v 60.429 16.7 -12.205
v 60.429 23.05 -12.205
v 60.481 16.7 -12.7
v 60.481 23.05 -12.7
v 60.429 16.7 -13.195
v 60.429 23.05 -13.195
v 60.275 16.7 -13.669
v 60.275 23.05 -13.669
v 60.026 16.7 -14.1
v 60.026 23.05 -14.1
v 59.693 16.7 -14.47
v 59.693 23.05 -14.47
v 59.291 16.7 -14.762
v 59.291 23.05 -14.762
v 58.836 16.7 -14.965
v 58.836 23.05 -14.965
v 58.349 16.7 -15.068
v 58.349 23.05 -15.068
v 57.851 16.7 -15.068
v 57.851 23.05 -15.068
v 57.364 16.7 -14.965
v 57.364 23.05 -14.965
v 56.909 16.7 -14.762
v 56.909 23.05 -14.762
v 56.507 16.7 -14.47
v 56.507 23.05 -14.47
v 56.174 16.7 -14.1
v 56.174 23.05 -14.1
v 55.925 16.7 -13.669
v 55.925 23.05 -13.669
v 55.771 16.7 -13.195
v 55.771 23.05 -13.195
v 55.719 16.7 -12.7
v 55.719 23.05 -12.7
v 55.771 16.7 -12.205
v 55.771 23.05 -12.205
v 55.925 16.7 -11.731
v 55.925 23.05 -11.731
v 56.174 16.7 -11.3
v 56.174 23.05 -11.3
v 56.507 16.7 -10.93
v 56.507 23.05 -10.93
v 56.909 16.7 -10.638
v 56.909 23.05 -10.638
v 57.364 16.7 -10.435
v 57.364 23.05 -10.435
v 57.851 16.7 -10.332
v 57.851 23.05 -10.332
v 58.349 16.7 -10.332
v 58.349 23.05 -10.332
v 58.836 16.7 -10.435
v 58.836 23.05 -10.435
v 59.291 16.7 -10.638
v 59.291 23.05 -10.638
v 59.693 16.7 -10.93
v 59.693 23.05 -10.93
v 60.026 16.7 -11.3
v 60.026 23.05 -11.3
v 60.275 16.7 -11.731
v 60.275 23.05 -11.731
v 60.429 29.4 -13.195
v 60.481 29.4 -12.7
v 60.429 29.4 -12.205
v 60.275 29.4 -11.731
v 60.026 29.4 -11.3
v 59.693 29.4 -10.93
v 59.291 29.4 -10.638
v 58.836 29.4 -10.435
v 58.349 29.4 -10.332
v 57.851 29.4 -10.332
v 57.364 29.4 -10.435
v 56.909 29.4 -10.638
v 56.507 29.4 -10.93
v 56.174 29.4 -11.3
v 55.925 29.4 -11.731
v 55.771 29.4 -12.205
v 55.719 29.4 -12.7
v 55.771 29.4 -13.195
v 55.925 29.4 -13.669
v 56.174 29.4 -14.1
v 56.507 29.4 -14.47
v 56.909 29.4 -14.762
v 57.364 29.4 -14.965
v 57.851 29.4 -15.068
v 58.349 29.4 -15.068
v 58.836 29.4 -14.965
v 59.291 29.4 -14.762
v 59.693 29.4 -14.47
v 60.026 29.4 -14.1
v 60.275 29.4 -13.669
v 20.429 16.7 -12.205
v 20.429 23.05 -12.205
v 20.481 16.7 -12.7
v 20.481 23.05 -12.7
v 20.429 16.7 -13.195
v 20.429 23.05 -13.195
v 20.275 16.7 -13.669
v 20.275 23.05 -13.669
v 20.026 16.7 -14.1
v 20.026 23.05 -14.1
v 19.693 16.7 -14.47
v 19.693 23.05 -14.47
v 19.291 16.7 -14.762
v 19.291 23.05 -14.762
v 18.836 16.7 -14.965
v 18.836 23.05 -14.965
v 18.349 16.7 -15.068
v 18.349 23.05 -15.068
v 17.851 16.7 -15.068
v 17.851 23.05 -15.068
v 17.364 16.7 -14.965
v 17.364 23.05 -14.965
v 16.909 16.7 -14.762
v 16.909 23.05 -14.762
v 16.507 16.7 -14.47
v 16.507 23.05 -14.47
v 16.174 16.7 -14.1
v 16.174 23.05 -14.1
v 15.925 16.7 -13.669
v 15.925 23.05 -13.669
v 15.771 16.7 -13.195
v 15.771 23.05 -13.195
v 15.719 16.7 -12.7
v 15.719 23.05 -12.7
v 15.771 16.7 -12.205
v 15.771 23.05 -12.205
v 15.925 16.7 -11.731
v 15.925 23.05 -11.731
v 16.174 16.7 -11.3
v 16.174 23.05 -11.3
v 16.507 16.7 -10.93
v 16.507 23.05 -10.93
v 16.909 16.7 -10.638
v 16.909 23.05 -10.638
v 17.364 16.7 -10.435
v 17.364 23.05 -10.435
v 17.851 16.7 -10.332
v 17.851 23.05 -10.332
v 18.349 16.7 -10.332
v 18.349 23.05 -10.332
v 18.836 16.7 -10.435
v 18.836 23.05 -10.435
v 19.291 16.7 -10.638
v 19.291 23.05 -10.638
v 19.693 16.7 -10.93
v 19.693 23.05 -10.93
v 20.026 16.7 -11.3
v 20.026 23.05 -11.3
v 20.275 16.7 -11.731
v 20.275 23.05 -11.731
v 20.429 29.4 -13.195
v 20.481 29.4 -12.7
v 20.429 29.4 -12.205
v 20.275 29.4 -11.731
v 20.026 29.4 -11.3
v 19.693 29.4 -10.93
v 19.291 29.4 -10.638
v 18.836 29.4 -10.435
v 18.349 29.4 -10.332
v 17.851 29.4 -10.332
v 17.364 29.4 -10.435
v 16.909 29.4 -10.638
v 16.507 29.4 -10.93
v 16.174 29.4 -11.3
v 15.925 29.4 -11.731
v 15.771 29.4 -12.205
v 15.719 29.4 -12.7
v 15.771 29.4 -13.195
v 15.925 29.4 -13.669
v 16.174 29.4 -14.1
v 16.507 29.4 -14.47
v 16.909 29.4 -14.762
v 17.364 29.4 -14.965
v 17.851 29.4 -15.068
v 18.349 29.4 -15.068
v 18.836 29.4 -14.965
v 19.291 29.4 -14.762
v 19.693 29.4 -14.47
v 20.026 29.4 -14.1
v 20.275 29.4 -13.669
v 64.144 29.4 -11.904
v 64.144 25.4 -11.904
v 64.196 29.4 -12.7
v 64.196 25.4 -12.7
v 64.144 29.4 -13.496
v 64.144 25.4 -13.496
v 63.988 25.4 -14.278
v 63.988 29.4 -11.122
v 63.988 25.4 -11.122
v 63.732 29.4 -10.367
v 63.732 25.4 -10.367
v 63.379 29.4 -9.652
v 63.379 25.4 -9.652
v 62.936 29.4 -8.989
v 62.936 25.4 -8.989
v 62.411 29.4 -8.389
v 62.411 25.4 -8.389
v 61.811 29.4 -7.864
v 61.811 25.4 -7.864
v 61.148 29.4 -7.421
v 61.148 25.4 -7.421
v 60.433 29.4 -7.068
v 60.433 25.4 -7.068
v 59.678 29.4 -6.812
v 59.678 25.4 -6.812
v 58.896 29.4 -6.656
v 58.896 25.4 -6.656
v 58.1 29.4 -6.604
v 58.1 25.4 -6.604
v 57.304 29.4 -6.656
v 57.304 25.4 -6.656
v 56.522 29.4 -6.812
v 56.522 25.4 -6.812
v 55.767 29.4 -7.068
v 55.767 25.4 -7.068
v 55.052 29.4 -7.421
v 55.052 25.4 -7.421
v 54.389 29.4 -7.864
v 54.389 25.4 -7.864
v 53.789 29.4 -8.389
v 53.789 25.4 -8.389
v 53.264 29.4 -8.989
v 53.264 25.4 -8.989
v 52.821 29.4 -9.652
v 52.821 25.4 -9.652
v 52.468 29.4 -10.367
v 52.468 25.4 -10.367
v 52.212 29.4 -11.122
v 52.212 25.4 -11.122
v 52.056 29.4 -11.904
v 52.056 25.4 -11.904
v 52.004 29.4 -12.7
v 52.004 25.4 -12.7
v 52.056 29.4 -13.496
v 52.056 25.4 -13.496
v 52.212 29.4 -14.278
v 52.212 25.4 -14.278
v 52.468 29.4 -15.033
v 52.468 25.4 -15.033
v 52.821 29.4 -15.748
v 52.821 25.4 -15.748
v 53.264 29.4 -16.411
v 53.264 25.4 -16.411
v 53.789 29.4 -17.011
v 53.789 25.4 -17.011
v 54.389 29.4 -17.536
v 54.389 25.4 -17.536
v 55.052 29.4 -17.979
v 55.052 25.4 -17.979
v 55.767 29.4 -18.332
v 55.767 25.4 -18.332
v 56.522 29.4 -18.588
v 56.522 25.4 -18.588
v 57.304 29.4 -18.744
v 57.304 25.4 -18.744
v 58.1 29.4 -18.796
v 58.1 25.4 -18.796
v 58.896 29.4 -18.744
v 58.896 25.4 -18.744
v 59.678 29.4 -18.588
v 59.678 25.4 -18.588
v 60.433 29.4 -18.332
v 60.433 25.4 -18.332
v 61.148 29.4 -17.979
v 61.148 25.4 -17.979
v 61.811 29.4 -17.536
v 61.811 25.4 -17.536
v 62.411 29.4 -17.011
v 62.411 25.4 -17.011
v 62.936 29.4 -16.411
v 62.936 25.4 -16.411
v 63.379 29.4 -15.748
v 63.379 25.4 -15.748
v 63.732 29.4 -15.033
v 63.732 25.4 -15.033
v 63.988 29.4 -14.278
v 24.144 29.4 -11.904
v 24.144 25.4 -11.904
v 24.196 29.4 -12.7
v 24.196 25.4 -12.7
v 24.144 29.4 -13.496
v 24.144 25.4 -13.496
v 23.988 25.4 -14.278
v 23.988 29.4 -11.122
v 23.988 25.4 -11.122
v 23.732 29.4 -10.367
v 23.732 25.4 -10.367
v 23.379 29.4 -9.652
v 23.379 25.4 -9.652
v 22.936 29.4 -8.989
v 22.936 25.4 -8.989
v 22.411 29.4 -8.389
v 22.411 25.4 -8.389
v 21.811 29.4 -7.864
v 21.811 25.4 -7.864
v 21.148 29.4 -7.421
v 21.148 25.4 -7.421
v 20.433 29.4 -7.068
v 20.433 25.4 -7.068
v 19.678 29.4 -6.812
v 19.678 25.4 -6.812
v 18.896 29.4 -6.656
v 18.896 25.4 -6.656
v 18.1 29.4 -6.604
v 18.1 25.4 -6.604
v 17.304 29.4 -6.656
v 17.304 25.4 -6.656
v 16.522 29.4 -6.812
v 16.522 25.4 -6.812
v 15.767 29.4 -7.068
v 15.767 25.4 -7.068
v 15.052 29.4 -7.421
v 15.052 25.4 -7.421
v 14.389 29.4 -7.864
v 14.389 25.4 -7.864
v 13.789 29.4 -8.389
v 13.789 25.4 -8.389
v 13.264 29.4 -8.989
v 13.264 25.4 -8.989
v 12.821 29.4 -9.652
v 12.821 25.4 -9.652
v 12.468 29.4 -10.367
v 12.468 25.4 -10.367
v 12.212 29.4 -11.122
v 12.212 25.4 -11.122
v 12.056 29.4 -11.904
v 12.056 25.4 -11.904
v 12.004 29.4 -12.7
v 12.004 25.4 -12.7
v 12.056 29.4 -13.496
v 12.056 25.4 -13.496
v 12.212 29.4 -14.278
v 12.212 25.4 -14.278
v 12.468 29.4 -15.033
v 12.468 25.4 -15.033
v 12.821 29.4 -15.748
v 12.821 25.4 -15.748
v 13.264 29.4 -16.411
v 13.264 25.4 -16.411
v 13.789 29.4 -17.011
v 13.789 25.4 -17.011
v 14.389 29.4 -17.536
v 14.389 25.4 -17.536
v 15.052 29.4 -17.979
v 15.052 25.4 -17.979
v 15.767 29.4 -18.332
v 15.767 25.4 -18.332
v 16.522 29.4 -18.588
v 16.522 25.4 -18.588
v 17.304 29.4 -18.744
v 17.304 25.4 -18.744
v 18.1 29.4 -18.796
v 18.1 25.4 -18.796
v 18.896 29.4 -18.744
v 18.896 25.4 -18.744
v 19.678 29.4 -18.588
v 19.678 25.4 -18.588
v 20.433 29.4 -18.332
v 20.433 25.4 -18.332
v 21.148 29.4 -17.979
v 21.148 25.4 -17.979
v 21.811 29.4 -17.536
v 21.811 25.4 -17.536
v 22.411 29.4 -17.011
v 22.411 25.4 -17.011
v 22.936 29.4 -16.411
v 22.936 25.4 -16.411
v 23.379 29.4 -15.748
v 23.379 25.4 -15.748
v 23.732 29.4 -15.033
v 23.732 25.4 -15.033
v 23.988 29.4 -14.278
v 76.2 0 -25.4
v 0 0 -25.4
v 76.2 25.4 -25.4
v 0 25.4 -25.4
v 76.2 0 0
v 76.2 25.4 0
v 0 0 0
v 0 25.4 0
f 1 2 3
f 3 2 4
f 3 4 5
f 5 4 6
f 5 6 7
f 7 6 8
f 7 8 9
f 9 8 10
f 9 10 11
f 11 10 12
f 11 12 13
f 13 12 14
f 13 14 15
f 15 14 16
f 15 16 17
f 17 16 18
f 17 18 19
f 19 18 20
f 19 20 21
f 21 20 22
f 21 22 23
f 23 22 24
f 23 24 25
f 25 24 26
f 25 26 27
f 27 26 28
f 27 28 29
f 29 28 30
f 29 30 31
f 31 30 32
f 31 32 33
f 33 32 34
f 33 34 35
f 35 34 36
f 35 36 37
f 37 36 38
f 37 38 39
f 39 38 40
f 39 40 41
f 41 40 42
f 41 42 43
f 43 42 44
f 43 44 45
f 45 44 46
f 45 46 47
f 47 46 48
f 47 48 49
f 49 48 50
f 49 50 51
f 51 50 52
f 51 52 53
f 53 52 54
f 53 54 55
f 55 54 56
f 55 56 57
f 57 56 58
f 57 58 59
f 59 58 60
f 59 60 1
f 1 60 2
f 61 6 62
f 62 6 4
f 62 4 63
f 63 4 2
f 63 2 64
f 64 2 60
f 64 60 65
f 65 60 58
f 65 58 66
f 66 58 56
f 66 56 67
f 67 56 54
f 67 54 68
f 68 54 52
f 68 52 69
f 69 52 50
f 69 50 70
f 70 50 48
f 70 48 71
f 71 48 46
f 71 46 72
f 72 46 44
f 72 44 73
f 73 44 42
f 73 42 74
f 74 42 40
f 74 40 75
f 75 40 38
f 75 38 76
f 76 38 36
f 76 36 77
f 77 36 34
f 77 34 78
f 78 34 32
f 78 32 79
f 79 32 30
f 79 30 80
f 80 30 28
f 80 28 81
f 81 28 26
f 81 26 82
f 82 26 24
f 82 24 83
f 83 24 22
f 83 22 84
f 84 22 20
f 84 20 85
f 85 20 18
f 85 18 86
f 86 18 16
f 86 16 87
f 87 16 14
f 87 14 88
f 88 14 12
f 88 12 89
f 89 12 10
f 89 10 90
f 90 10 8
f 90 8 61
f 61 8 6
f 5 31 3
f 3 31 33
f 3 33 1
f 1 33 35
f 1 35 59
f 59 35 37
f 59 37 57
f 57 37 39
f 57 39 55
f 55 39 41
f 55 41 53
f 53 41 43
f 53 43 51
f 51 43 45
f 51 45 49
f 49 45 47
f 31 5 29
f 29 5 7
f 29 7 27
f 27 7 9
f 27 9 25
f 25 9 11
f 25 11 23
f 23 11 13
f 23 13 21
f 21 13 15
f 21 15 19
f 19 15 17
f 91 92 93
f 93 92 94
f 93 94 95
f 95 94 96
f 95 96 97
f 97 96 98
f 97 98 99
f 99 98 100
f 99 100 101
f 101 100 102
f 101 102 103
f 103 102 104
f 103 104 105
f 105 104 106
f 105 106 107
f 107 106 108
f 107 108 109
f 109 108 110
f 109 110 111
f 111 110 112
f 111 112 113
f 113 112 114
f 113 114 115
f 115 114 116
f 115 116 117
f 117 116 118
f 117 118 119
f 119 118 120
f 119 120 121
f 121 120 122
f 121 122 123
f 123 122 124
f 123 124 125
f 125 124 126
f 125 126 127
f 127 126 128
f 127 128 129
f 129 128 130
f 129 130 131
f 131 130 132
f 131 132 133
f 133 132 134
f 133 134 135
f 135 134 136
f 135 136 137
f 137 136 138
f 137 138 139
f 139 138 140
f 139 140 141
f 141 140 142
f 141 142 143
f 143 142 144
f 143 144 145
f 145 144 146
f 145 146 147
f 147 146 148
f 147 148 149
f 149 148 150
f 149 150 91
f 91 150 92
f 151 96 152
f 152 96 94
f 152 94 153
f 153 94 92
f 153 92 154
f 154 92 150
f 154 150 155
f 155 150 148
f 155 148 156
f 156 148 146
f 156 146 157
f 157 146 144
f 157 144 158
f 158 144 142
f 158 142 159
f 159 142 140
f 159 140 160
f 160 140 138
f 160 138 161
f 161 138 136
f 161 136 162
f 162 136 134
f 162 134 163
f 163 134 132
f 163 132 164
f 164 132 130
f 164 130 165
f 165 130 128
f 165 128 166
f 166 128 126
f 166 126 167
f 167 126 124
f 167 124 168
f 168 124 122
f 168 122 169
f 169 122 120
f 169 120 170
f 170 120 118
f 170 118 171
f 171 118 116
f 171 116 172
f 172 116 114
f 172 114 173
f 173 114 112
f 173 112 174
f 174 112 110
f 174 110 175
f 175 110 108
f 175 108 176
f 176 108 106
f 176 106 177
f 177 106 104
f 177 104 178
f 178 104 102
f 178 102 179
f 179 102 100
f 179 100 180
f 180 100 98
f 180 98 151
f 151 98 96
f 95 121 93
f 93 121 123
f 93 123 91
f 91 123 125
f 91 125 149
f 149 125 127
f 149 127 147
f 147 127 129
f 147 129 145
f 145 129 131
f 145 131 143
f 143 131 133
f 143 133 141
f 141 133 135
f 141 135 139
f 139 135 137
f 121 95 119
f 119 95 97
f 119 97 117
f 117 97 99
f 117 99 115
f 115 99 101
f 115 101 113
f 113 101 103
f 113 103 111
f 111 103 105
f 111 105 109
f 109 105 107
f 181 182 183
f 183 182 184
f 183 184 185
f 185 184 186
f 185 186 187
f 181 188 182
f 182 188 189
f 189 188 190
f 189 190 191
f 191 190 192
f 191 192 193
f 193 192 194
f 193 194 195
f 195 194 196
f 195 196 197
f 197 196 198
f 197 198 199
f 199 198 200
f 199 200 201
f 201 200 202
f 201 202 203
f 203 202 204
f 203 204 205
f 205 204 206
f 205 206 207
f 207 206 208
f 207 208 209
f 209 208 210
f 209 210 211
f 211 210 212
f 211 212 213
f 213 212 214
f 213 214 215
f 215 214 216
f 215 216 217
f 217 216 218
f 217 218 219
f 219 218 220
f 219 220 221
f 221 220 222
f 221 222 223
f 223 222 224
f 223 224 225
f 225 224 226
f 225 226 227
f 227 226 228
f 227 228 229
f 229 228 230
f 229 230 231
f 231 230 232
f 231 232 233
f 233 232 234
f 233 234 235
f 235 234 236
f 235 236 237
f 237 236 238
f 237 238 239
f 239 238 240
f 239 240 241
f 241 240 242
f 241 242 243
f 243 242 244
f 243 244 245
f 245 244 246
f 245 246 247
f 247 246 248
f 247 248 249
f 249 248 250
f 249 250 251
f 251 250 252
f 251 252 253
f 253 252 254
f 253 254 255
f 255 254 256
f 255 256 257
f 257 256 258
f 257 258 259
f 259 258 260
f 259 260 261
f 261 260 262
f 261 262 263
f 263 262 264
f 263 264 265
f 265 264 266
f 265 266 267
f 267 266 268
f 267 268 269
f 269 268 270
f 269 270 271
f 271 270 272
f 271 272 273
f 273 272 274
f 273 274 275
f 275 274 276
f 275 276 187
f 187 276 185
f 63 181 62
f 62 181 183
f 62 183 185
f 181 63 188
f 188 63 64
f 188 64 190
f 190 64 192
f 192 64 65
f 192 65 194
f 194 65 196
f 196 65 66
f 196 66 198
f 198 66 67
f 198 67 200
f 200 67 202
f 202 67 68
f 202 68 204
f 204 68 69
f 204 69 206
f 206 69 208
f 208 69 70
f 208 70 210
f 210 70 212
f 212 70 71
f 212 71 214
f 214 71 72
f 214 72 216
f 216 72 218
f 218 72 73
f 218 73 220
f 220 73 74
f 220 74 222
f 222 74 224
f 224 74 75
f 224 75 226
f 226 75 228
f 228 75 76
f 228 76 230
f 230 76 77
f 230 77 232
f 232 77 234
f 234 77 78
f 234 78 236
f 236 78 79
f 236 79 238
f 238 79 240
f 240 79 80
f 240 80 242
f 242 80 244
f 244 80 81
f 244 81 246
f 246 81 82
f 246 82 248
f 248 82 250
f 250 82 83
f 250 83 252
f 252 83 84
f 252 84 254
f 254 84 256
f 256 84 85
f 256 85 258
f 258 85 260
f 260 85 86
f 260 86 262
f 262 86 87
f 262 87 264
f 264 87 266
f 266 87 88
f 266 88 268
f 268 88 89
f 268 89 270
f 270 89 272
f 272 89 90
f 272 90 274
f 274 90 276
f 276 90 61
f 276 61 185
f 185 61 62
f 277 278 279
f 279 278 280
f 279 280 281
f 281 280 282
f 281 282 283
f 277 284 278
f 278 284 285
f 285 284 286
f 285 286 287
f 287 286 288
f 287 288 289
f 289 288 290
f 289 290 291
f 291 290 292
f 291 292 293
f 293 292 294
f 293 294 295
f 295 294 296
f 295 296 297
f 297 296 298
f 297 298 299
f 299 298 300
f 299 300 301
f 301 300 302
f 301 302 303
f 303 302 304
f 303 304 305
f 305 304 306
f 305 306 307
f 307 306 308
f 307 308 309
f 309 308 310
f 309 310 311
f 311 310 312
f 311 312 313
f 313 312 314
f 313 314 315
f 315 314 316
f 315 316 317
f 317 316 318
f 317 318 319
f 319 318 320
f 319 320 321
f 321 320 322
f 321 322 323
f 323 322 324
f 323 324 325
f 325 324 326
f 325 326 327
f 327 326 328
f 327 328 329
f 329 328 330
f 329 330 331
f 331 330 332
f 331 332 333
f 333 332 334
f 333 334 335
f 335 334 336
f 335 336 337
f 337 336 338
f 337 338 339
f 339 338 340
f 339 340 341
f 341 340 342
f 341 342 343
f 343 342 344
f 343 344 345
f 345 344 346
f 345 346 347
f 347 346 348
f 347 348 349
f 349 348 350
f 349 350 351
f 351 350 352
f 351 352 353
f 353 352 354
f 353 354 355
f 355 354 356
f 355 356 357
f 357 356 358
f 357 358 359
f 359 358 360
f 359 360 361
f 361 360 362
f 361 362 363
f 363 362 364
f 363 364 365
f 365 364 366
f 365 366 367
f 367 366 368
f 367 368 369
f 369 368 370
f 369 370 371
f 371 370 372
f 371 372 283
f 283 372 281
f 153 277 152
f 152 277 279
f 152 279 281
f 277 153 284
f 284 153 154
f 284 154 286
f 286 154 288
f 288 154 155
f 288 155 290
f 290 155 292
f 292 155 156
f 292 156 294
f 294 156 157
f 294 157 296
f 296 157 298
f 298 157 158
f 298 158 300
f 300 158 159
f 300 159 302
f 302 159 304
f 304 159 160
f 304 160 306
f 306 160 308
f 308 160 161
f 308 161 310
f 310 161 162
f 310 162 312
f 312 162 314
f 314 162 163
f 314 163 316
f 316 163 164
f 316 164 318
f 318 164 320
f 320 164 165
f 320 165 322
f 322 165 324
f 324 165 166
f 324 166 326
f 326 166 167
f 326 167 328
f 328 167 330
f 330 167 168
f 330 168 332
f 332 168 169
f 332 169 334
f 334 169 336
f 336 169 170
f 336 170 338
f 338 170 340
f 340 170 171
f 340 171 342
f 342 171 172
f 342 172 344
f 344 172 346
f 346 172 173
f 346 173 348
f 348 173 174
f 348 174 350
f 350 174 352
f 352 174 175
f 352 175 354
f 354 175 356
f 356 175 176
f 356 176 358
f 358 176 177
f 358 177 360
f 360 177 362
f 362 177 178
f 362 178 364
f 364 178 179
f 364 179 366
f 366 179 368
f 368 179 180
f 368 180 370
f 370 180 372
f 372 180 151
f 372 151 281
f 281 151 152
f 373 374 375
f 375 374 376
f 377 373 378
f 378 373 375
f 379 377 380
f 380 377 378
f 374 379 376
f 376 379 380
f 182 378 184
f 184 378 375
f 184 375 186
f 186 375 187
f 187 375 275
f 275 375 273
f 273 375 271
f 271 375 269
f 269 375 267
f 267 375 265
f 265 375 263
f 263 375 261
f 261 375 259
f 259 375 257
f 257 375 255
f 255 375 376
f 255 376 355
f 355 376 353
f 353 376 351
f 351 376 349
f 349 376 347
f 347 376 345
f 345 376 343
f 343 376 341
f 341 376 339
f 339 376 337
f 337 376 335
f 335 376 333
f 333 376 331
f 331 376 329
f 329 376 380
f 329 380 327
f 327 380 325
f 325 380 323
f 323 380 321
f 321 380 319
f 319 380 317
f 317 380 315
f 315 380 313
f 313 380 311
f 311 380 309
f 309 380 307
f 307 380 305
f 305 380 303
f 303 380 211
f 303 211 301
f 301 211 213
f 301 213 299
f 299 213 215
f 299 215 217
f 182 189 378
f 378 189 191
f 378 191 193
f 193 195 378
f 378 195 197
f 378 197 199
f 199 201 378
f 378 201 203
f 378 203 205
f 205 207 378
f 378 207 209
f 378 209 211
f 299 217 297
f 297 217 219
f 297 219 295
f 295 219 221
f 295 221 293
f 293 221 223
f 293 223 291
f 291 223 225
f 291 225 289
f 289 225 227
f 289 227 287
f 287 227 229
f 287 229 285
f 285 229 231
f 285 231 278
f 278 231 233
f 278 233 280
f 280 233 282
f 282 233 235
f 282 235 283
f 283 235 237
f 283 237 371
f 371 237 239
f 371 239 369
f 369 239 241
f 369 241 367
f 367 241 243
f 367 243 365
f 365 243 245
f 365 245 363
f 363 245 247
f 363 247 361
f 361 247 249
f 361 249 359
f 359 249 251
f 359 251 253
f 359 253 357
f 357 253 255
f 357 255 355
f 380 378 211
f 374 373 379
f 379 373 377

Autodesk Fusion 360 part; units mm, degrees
sketch "Sketch1" plane through (0, 0, 0) normal (0, 1, 0) x (1, 0, 0)
  line L0 (0, 0) -> (76.2, 0)
  line L1 (76.2, 0) -> (76.2, 25.4)
  line L2 (76.2, 25.4) -> (0, 25.4)
  line L3 (0, 25.4) -> (0, 0)
  dimension "d1" = 76.2
  dimension "d2" = 25.4
extrude "Extrude1" add sketch "Sketch1" along normal blind 25.4
sketch "Sketch2" plane through (0, 25.4, 0) normal (0, 1, 0) x (-1, 0, 0)
  line L0 (0, -25.4) -> (0, 0)
  line L1 (0, 0) -> (-76.2, 0)
  line L2 (-76.2, 0) -> (-76.2, -25.4)
  line L3 (-76.2, -25.4) -> (0, -25.4)
  circle A0 centre (-18.1, -12.7) radius 6.096
  circle A1 centre (-58.1, -12.7) radius 6.096
  dimension "d6" = 12.192
  dimension "d8" = 12.192
extrude "Extrude2" add sketch "Sketch2" along normal blind 4 contours A0 | A1
sketch "Sketch3" plane through (0, 29.4, 0) normal (0, 1, 0) x (-1, 0, 0)
  circle A0 centre (-18.1, -12.7) radius 6.096
  circle A1 centre (-18.1, -12.7) radius 2.3813
  dimension "d11" = 4.7625
extrude "Extrude3" cut sketch "Sketch3" against normal blind 12.7 contours A1
sketch "Sketch4" plane through (0, 29.4, 0) normal (0, 1, 0) x (-1, 0, 0)
  circle A0 centre (-58.1, -12.7) radius 6.096
  circle A1 centre (-58.1, -12.7) radius 2.3813
  dimension "d14" = 4.7625
extrude "Extrude4" cut sketch "Sketch4" against normal blind 12.7 contours A1
